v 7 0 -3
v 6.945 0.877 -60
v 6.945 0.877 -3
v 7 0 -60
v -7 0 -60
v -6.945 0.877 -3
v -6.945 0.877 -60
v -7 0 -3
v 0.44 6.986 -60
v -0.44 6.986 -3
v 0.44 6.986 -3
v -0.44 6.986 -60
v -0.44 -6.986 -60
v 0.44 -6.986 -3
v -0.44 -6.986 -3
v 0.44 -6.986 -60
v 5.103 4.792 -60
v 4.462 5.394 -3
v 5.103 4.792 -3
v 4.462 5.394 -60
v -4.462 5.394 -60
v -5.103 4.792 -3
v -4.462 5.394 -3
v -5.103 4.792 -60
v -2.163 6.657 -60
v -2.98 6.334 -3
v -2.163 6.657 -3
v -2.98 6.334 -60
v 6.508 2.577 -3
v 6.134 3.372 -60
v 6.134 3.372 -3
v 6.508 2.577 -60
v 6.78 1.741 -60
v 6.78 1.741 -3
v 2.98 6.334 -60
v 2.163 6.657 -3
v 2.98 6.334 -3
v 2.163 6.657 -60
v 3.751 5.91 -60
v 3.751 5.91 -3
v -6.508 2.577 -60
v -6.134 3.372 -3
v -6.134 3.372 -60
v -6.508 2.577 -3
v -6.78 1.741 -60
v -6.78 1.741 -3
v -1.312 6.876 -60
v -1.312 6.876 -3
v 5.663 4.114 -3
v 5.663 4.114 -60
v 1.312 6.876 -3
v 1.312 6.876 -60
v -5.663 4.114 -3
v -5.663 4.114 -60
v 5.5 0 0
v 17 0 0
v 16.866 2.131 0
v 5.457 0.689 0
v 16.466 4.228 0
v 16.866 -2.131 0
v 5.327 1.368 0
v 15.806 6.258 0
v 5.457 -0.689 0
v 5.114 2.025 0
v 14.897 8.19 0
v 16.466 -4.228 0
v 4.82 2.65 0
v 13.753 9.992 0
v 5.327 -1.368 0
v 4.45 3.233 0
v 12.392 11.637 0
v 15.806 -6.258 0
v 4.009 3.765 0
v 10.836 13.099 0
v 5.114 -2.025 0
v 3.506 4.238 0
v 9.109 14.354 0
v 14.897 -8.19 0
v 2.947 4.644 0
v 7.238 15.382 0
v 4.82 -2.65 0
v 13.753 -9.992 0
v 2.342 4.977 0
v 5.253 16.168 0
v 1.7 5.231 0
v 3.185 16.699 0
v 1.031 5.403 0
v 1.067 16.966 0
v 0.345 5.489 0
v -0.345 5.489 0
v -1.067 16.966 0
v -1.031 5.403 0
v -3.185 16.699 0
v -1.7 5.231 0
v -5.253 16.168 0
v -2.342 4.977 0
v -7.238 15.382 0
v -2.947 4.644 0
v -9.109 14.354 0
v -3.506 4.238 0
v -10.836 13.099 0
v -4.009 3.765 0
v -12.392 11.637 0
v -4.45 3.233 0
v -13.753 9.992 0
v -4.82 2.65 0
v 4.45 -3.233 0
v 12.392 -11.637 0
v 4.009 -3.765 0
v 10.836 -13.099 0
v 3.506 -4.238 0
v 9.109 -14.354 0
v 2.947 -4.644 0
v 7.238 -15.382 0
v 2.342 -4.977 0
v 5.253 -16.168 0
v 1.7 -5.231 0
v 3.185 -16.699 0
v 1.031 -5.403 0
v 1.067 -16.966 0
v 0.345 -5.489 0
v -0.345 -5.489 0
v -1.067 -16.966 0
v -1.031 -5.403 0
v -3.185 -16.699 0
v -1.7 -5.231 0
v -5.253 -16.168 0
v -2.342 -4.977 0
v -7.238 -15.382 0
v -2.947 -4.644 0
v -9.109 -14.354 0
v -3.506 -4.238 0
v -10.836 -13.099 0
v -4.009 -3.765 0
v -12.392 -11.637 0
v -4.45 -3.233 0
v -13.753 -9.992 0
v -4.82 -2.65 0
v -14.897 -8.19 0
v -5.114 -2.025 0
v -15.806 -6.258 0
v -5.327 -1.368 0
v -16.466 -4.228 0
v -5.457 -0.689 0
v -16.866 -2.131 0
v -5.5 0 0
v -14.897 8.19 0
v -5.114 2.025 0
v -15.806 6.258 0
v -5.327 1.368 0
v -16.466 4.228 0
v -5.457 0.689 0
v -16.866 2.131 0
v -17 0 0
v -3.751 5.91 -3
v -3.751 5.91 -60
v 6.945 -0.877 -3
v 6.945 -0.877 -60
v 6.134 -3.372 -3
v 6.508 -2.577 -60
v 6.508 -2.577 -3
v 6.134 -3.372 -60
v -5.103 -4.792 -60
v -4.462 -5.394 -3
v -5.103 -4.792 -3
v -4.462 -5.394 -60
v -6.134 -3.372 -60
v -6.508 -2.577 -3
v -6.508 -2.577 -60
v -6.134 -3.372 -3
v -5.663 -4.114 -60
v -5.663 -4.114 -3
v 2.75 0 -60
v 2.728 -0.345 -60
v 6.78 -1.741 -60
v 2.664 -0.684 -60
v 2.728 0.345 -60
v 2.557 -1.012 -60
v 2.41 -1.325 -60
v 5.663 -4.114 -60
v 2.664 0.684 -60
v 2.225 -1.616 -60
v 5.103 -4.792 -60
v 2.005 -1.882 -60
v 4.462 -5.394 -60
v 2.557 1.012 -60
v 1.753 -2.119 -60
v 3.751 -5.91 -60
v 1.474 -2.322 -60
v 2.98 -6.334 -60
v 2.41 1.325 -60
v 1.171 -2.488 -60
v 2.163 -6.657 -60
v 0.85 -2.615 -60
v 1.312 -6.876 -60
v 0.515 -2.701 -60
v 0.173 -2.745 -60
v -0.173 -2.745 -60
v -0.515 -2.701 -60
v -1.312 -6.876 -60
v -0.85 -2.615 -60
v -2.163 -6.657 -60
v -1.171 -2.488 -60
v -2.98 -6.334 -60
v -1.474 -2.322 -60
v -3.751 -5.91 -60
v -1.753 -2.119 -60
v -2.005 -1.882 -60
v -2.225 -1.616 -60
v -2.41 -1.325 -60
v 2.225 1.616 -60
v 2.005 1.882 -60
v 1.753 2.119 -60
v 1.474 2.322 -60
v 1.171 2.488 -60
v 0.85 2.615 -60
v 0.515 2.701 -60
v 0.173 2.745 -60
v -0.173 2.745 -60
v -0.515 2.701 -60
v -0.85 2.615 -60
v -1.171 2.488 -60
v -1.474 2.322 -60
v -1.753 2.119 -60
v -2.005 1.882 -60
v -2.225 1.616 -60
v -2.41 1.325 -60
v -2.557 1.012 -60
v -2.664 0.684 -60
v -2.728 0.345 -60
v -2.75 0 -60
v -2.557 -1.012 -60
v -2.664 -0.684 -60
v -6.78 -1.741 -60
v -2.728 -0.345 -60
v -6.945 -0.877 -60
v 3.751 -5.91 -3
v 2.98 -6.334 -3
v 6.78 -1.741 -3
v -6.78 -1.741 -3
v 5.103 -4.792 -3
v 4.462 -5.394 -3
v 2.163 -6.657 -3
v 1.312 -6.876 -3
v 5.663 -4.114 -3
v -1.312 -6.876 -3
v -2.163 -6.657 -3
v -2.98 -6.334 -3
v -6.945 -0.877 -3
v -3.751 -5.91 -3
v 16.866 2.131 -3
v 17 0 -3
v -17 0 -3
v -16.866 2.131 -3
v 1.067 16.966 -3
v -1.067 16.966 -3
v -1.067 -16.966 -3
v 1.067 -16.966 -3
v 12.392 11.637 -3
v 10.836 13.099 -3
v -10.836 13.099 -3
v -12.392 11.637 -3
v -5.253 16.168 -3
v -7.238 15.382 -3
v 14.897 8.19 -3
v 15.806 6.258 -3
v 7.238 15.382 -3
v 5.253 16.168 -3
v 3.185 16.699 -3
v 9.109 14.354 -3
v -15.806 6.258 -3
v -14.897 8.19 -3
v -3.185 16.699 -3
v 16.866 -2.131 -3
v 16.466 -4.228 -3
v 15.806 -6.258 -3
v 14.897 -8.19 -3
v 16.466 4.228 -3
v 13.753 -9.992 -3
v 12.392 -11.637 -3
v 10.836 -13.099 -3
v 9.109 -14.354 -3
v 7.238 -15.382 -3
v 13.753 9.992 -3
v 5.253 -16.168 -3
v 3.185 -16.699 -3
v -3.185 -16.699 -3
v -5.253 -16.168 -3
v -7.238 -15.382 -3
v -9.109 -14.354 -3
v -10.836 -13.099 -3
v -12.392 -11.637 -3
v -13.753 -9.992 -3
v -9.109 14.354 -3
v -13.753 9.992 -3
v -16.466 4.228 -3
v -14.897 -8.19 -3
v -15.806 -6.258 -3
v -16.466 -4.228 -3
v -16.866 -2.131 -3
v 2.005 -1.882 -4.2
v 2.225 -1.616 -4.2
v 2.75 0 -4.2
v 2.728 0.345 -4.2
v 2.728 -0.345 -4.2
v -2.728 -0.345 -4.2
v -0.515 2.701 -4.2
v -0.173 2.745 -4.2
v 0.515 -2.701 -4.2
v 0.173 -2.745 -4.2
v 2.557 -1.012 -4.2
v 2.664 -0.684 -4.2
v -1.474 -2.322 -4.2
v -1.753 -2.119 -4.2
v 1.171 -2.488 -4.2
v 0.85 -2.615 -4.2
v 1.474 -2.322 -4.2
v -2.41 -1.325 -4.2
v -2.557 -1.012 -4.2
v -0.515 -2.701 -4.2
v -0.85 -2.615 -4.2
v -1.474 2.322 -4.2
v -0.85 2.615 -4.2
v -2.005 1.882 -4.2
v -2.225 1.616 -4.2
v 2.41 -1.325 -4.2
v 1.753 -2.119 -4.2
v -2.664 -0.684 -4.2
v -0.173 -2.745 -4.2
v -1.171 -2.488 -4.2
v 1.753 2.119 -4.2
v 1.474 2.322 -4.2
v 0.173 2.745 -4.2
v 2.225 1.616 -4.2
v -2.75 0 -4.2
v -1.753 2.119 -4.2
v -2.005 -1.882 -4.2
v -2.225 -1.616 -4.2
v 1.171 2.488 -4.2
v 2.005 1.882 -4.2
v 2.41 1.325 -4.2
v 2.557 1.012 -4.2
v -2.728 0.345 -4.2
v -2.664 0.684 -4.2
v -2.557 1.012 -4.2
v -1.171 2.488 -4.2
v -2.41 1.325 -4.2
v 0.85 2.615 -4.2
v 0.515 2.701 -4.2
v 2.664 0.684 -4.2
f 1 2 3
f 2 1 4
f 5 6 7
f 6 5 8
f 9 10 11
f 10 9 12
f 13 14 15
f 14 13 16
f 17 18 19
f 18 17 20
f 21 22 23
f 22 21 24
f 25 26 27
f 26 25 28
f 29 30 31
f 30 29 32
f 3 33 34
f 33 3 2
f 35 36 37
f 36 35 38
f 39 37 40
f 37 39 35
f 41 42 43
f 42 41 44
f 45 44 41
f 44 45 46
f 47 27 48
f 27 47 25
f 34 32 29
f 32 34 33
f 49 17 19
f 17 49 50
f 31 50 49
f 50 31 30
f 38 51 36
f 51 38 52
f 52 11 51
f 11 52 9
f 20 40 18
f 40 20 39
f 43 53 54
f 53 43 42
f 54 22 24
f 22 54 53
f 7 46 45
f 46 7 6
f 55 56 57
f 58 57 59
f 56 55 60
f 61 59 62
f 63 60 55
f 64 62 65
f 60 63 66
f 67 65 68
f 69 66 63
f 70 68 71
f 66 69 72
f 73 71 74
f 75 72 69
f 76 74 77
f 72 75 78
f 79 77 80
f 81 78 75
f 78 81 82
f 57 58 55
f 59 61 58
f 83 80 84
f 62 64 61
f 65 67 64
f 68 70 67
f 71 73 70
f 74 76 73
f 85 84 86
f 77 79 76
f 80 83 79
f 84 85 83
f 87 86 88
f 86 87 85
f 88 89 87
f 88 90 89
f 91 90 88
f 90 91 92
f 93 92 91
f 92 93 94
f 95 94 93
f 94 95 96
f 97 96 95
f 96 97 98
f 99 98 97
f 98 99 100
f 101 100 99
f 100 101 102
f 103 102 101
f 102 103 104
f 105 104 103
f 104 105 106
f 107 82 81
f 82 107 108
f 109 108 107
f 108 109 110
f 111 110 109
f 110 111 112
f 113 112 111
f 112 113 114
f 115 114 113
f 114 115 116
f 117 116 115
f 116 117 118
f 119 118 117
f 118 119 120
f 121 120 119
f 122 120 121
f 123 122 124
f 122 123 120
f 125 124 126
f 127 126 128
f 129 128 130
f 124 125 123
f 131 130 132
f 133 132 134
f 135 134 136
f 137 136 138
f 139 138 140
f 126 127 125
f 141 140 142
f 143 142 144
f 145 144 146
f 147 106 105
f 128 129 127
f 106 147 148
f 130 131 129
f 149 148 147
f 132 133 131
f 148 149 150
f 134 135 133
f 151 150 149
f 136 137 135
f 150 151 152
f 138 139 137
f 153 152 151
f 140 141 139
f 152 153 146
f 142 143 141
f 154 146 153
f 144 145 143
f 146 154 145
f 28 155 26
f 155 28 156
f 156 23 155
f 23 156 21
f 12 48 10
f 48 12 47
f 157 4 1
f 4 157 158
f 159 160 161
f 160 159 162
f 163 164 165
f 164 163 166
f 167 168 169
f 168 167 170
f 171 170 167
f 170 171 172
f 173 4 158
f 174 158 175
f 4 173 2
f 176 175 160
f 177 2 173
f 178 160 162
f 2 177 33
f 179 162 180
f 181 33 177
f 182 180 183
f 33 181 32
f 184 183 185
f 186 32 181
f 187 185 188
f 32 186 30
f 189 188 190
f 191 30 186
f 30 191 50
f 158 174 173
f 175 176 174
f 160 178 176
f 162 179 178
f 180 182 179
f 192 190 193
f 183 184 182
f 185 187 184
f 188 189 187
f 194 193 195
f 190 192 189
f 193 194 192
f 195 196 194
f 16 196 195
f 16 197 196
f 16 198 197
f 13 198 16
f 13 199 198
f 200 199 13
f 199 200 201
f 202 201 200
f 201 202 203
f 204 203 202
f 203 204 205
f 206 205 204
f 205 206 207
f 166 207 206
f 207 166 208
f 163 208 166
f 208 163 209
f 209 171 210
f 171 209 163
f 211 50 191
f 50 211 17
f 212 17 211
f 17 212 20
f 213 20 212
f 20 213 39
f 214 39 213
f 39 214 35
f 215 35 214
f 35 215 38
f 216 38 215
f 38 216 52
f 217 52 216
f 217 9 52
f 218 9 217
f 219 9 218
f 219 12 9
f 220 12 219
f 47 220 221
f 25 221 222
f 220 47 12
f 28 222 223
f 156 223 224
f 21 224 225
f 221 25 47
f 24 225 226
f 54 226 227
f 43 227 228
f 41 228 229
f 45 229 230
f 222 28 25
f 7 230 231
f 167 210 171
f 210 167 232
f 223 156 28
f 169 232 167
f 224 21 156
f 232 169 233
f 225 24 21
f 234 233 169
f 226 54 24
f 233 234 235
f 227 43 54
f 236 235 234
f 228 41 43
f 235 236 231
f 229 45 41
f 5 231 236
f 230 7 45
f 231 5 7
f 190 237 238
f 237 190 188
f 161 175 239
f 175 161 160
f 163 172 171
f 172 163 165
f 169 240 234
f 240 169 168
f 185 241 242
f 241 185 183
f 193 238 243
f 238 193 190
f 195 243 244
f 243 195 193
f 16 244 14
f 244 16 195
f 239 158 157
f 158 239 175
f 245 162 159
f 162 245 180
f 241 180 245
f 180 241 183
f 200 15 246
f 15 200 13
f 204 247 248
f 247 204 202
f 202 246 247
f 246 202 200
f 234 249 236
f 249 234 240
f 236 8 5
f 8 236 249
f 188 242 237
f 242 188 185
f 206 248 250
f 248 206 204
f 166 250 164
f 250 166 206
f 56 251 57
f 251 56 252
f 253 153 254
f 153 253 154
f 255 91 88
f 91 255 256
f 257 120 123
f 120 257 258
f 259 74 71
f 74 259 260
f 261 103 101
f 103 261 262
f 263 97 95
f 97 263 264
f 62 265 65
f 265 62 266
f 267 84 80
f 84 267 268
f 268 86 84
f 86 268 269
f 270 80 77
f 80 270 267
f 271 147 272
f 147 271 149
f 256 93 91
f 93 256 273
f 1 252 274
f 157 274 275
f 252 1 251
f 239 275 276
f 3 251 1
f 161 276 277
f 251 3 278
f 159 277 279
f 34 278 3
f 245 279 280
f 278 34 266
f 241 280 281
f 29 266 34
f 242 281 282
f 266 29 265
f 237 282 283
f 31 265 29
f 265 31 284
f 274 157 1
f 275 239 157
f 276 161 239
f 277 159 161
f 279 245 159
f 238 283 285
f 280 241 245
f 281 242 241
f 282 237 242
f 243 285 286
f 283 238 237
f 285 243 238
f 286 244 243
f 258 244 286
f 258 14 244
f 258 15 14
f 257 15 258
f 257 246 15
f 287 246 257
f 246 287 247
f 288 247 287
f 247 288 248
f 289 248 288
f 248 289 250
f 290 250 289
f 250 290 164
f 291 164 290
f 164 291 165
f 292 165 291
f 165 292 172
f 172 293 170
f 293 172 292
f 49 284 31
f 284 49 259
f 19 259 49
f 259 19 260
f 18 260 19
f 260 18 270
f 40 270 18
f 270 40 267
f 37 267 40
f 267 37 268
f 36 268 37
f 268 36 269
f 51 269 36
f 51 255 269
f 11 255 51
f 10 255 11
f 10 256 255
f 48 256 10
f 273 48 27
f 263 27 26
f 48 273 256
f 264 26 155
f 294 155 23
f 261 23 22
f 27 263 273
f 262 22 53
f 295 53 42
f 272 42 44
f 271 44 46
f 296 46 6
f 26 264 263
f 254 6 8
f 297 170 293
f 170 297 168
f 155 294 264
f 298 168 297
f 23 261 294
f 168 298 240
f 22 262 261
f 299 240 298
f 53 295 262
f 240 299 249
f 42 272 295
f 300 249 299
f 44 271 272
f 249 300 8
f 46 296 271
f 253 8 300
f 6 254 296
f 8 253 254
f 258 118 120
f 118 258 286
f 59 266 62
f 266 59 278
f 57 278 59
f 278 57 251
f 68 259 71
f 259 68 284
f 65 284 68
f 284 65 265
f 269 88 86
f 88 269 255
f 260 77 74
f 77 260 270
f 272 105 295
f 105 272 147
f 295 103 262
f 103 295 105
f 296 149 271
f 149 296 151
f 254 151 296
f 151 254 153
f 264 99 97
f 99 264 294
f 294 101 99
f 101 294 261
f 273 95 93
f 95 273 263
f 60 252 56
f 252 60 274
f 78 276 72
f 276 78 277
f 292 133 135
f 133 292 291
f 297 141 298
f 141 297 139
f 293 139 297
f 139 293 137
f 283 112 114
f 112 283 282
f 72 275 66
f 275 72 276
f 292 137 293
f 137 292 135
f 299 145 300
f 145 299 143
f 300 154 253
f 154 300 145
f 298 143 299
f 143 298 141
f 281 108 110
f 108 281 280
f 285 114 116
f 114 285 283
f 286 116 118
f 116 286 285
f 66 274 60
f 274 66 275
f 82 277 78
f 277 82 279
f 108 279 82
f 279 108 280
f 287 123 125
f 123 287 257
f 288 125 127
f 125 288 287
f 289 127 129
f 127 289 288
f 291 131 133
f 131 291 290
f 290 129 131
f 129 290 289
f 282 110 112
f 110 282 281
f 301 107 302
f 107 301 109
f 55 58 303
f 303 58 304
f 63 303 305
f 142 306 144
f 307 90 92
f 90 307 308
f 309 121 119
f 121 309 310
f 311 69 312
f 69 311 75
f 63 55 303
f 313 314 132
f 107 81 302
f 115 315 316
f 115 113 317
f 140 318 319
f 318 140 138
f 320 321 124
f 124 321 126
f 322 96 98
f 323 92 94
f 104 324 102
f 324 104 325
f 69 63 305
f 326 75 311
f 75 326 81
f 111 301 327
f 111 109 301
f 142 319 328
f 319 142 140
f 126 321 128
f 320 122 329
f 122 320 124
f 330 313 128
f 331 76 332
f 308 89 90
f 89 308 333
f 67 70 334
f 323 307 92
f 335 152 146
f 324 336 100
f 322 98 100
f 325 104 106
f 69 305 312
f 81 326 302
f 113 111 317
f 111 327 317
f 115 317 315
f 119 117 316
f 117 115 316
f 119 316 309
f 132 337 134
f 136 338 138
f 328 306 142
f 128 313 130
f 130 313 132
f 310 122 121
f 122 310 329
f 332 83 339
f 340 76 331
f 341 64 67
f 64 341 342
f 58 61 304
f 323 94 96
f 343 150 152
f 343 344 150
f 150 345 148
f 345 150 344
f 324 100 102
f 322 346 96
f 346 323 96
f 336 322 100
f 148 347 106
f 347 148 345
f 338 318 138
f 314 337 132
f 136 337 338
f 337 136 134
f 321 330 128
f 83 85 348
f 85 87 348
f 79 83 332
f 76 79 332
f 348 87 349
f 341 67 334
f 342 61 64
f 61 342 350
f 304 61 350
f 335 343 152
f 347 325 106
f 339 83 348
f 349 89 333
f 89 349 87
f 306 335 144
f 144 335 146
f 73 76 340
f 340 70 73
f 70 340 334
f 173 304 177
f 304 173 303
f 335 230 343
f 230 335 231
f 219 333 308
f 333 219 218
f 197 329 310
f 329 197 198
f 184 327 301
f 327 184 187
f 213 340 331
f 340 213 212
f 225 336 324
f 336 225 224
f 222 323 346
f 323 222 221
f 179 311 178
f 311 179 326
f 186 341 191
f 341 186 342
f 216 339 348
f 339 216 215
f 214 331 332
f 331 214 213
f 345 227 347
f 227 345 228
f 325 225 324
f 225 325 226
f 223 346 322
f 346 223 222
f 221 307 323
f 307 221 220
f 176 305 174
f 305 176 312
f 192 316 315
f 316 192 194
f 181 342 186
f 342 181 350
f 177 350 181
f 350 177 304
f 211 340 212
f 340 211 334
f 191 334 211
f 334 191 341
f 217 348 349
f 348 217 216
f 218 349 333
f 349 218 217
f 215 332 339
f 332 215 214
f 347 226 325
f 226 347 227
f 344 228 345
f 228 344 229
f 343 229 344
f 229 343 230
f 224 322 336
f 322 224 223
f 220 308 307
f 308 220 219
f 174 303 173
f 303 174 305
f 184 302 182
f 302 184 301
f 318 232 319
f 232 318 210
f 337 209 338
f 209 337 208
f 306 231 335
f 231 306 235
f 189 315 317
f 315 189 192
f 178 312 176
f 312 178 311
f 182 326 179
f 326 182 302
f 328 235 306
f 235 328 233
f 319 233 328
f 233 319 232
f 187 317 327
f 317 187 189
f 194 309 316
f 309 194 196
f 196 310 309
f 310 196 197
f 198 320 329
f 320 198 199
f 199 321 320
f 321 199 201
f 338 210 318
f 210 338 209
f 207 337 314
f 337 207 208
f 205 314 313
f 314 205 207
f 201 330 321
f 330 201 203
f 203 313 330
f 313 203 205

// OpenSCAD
$fn = 50;


difference() {
	union() {
		translate(v = [0, 0, -60.0000000000]) {
			cylinder(h = 60, r = 7.0000000000);
		}
		translate(v = [0, 0, -3.0000000000]) {
			cylinder(h = 3, r = 17.0000000000);
		}
	}
	union() {
		translate(v = [0, 0, 0]) {
			rotate(a = [0, 0, 0]) {
				difference() {
					union() {
						#translate(v = [0, 0, -60.0000000000]) {
							cylinder(h = 60, r = 2.2500000000);
						}
						#translate(v = [0, 0, -4.2000000000]) {
							cylinder(h = 4.2000000000, r1 = 2.7500000000, r2 = 5.5000000000);
						}
						#translate(v = [0, 0, -60.0000000000]) {
							cylinder(h = 60, r = 2.7500000000);
						}
						#translate(v = [0, 0, -60.0000000000]) {
							cylinder(h = 60, r = 2.2500000000);
						}
					}
					union();
				}
			}
		}
	}
}
